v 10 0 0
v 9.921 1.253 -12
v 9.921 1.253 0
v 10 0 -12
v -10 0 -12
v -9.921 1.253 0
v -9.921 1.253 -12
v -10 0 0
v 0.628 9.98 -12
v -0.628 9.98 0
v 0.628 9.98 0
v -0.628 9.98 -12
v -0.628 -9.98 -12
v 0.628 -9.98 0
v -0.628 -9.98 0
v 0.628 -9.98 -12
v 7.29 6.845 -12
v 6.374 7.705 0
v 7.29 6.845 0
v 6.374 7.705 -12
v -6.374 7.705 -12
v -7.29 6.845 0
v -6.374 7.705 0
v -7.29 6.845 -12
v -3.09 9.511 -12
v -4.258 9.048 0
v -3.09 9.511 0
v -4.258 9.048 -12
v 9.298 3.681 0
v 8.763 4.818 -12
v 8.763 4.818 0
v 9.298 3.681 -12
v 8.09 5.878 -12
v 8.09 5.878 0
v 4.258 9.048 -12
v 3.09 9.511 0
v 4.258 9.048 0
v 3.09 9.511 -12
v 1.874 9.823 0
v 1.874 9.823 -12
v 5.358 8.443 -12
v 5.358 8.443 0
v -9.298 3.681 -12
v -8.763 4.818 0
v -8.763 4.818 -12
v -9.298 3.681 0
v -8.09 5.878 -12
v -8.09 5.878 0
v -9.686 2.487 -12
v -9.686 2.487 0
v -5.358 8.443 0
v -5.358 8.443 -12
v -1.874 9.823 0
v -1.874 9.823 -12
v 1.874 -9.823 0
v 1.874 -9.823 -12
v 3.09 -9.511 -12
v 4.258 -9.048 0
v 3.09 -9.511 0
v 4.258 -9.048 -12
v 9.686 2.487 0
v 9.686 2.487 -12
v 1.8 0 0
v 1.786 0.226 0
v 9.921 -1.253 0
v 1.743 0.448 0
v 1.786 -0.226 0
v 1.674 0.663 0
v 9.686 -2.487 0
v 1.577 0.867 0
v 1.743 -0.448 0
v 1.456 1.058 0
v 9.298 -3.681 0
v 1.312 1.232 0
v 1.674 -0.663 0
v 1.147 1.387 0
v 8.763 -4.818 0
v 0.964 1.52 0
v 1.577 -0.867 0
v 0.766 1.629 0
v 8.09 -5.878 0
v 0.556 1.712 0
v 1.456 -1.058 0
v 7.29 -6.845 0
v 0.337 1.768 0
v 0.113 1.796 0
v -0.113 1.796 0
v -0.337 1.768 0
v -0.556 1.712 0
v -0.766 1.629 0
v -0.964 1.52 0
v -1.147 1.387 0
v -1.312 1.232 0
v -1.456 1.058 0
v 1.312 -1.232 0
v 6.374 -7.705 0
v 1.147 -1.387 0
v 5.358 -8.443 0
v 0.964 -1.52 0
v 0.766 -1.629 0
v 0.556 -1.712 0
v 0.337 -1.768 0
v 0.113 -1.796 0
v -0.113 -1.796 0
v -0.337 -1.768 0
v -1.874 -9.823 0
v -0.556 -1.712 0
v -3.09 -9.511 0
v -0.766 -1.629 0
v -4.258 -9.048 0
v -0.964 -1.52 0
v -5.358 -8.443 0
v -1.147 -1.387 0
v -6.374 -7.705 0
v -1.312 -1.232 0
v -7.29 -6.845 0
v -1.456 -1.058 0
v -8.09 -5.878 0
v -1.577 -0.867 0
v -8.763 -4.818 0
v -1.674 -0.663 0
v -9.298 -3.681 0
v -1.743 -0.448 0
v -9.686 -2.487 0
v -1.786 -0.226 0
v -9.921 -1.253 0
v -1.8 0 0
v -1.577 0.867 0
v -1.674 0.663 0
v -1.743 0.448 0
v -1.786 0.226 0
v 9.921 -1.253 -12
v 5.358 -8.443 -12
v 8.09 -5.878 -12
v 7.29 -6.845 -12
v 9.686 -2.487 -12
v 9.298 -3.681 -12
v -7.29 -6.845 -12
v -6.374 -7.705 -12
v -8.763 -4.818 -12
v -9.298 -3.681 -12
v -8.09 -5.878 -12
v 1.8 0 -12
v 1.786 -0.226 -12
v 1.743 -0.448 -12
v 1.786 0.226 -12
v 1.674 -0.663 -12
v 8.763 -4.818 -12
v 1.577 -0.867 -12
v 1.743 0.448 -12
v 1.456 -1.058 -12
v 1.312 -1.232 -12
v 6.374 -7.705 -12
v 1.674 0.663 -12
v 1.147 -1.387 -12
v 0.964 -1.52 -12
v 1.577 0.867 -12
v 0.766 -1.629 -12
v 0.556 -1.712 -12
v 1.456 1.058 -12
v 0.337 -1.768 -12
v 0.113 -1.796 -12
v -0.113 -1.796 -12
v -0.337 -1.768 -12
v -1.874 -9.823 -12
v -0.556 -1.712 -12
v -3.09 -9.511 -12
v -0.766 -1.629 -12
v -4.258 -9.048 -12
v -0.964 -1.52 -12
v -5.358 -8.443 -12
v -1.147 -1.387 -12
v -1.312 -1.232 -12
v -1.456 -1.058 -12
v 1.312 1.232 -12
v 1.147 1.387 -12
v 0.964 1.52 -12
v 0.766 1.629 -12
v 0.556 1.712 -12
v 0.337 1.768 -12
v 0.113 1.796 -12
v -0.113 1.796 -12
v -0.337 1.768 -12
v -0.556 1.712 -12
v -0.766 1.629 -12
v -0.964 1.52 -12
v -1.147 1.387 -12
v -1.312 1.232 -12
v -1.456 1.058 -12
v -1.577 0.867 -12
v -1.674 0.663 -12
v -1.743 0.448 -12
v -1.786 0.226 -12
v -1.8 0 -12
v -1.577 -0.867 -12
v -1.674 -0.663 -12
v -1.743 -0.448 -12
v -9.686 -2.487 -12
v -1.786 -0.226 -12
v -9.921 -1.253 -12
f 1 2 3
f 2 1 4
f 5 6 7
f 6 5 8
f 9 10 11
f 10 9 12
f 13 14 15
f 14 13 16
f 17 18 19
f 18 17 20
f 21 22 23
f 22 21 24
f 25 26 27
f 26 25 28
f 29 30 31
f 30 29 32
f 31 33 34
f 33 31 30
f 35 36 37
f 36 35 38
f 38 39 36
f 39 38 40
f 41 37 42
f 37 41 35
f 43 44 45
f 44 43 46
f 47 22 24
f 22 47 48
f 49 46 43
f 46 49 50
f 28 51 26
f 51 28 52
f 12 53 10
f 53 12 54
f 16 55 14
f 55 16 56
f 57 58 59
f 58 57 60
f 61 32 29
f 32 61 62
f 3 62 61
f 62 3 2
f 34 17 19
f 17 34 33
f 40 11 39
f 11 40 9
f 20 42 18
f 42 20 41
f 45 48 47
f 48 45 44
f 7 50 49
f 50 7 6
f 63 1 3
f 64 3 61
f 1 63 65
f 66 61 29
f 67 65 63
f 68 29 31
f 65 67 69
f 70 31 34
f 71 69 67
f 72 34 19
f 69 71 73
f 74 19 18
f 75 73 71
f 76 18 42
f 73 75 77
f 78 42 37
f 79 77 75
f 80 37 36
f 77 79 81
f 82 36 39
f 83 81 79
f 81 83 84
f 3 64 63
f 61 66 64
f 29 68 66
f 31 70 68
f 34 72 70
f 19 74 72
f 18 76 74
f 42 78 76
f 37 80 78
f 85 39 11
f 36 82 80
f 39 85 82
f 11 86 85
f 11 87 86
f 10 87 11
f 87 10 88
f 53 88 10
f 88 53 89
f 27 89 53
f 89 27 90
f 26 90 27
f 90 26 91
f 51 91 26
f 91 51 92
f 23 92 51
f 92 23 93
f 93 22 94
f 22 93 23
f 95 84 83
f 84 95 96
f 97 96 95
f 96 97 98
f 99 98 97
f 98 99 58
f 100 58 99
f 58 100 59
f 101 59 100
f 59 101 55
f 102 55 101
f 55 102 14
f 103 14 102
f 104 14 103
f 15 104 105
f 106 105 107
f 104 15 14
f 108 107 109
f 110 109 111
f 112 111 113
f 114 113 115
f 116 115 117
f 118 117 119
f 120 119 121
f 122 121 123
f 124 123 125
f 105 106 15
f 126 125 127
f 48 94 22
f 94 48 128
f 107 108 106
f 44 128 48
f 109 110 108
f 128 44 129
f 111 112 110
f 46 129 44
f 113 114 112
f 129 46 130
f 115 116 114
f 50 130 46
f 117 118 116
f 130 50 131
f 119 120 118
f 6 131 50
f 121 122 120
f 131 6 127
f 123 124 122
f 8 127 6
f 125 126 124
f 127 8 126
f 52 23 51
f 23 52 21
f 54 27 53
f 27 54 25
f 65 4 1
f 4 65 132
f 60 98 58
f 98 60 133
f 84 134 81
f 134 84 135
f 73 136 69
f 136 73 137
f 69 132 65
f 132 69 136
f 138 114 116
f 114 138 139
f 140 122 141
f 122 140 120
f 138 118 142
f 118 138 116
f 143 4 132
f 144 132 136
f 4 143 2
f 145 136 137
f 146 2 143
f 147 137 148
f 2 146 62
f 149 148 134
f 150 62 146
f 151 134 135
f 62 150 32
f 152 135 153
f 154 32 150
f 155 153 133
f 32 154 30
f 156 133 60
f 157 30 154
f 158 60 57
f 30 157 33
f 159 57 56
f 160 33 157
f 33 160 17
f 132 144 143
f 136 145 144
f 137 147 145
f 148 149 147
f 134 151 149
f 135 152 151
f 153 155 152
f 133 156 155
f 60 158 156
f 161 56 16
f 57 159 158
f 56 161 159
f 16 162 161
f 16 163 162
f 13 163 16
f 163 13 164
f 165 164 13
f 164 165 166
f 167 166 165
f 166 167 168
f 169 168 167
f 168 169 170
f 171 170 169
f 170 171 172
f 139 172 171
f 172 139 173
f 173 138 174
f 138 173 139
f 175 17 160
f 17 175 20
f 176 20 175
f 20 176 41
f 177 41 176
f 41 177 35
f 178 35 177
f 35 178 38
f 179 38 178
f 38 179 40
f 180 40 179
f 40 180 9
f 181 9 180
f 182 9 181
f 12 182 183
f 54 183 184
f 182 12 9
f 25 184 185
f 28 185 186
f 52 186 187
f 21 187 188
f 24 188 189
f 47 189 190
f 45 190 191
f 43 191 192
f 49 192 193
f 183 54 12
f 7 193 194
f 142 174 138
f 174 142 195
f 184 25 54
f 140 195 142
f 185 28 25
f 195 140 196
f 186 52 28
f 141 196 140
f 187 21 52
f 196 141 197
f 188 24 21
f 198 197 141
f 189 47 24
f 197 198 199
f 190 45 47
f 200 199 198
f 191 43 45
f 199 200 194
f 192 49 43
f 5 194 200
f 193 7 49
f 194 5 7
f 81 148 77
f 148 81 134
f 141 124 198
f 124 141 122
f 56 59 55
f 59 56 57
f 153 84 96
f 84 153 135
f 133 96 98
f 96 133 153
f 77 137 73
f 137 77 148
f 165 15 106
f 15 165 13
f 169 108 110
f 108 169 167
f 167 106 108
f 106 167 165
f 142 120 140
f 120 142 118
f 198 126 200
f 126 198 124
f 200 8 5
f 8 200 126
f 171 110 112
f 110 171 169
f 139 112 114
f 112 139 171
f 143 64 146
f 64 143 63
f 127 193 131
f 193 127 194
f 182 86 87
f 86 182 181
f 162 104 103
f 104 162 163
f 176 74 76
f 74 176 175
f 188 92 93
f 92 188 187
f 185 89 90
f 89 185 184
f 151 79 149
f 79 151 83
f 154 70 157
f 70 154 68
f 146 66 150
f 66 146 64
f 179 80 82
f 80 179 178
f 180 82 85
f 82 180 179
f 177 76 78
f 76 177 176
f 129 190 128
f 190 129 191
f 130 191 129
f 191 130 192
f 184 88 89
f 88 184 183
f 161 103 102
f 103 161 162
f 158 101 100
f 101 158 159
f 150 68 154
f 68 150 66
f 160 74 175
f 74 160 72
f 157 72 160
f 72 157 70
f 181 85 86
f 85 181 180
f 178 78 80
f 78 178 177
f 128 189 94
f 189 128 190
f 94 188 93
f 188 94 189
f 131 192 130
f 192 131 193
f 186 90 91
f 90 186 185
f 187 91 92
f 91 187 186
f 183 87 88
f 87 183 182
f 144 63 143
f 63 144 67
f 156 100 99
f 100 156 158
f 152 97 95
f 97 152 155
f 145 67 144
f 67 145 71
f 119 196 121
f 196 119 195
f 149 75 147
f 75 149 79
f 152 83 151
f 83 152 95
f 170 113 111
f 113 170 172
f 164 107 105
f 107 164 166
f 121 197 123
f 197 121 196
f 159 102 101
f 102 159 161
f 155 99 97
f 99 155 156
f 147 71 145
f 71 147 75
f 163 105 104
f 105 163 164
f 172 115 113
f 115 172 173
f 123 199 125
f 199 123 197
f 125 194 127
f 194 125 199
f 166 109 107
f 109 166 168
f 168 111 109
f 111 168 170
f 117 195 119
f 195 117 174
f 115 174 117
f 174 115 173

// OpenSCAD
$fn = 50;


difference() {
	union() {
		translate(v = [0, 0, -12.0000000000]) {
			cylinder(h = 12, r = 10.0000000000);
		}
	}
	union() {
		#translate(v = [0, 0, -12]) {
			cylinder(h = 12, r = 1.8000000000);
		}
	}
}
